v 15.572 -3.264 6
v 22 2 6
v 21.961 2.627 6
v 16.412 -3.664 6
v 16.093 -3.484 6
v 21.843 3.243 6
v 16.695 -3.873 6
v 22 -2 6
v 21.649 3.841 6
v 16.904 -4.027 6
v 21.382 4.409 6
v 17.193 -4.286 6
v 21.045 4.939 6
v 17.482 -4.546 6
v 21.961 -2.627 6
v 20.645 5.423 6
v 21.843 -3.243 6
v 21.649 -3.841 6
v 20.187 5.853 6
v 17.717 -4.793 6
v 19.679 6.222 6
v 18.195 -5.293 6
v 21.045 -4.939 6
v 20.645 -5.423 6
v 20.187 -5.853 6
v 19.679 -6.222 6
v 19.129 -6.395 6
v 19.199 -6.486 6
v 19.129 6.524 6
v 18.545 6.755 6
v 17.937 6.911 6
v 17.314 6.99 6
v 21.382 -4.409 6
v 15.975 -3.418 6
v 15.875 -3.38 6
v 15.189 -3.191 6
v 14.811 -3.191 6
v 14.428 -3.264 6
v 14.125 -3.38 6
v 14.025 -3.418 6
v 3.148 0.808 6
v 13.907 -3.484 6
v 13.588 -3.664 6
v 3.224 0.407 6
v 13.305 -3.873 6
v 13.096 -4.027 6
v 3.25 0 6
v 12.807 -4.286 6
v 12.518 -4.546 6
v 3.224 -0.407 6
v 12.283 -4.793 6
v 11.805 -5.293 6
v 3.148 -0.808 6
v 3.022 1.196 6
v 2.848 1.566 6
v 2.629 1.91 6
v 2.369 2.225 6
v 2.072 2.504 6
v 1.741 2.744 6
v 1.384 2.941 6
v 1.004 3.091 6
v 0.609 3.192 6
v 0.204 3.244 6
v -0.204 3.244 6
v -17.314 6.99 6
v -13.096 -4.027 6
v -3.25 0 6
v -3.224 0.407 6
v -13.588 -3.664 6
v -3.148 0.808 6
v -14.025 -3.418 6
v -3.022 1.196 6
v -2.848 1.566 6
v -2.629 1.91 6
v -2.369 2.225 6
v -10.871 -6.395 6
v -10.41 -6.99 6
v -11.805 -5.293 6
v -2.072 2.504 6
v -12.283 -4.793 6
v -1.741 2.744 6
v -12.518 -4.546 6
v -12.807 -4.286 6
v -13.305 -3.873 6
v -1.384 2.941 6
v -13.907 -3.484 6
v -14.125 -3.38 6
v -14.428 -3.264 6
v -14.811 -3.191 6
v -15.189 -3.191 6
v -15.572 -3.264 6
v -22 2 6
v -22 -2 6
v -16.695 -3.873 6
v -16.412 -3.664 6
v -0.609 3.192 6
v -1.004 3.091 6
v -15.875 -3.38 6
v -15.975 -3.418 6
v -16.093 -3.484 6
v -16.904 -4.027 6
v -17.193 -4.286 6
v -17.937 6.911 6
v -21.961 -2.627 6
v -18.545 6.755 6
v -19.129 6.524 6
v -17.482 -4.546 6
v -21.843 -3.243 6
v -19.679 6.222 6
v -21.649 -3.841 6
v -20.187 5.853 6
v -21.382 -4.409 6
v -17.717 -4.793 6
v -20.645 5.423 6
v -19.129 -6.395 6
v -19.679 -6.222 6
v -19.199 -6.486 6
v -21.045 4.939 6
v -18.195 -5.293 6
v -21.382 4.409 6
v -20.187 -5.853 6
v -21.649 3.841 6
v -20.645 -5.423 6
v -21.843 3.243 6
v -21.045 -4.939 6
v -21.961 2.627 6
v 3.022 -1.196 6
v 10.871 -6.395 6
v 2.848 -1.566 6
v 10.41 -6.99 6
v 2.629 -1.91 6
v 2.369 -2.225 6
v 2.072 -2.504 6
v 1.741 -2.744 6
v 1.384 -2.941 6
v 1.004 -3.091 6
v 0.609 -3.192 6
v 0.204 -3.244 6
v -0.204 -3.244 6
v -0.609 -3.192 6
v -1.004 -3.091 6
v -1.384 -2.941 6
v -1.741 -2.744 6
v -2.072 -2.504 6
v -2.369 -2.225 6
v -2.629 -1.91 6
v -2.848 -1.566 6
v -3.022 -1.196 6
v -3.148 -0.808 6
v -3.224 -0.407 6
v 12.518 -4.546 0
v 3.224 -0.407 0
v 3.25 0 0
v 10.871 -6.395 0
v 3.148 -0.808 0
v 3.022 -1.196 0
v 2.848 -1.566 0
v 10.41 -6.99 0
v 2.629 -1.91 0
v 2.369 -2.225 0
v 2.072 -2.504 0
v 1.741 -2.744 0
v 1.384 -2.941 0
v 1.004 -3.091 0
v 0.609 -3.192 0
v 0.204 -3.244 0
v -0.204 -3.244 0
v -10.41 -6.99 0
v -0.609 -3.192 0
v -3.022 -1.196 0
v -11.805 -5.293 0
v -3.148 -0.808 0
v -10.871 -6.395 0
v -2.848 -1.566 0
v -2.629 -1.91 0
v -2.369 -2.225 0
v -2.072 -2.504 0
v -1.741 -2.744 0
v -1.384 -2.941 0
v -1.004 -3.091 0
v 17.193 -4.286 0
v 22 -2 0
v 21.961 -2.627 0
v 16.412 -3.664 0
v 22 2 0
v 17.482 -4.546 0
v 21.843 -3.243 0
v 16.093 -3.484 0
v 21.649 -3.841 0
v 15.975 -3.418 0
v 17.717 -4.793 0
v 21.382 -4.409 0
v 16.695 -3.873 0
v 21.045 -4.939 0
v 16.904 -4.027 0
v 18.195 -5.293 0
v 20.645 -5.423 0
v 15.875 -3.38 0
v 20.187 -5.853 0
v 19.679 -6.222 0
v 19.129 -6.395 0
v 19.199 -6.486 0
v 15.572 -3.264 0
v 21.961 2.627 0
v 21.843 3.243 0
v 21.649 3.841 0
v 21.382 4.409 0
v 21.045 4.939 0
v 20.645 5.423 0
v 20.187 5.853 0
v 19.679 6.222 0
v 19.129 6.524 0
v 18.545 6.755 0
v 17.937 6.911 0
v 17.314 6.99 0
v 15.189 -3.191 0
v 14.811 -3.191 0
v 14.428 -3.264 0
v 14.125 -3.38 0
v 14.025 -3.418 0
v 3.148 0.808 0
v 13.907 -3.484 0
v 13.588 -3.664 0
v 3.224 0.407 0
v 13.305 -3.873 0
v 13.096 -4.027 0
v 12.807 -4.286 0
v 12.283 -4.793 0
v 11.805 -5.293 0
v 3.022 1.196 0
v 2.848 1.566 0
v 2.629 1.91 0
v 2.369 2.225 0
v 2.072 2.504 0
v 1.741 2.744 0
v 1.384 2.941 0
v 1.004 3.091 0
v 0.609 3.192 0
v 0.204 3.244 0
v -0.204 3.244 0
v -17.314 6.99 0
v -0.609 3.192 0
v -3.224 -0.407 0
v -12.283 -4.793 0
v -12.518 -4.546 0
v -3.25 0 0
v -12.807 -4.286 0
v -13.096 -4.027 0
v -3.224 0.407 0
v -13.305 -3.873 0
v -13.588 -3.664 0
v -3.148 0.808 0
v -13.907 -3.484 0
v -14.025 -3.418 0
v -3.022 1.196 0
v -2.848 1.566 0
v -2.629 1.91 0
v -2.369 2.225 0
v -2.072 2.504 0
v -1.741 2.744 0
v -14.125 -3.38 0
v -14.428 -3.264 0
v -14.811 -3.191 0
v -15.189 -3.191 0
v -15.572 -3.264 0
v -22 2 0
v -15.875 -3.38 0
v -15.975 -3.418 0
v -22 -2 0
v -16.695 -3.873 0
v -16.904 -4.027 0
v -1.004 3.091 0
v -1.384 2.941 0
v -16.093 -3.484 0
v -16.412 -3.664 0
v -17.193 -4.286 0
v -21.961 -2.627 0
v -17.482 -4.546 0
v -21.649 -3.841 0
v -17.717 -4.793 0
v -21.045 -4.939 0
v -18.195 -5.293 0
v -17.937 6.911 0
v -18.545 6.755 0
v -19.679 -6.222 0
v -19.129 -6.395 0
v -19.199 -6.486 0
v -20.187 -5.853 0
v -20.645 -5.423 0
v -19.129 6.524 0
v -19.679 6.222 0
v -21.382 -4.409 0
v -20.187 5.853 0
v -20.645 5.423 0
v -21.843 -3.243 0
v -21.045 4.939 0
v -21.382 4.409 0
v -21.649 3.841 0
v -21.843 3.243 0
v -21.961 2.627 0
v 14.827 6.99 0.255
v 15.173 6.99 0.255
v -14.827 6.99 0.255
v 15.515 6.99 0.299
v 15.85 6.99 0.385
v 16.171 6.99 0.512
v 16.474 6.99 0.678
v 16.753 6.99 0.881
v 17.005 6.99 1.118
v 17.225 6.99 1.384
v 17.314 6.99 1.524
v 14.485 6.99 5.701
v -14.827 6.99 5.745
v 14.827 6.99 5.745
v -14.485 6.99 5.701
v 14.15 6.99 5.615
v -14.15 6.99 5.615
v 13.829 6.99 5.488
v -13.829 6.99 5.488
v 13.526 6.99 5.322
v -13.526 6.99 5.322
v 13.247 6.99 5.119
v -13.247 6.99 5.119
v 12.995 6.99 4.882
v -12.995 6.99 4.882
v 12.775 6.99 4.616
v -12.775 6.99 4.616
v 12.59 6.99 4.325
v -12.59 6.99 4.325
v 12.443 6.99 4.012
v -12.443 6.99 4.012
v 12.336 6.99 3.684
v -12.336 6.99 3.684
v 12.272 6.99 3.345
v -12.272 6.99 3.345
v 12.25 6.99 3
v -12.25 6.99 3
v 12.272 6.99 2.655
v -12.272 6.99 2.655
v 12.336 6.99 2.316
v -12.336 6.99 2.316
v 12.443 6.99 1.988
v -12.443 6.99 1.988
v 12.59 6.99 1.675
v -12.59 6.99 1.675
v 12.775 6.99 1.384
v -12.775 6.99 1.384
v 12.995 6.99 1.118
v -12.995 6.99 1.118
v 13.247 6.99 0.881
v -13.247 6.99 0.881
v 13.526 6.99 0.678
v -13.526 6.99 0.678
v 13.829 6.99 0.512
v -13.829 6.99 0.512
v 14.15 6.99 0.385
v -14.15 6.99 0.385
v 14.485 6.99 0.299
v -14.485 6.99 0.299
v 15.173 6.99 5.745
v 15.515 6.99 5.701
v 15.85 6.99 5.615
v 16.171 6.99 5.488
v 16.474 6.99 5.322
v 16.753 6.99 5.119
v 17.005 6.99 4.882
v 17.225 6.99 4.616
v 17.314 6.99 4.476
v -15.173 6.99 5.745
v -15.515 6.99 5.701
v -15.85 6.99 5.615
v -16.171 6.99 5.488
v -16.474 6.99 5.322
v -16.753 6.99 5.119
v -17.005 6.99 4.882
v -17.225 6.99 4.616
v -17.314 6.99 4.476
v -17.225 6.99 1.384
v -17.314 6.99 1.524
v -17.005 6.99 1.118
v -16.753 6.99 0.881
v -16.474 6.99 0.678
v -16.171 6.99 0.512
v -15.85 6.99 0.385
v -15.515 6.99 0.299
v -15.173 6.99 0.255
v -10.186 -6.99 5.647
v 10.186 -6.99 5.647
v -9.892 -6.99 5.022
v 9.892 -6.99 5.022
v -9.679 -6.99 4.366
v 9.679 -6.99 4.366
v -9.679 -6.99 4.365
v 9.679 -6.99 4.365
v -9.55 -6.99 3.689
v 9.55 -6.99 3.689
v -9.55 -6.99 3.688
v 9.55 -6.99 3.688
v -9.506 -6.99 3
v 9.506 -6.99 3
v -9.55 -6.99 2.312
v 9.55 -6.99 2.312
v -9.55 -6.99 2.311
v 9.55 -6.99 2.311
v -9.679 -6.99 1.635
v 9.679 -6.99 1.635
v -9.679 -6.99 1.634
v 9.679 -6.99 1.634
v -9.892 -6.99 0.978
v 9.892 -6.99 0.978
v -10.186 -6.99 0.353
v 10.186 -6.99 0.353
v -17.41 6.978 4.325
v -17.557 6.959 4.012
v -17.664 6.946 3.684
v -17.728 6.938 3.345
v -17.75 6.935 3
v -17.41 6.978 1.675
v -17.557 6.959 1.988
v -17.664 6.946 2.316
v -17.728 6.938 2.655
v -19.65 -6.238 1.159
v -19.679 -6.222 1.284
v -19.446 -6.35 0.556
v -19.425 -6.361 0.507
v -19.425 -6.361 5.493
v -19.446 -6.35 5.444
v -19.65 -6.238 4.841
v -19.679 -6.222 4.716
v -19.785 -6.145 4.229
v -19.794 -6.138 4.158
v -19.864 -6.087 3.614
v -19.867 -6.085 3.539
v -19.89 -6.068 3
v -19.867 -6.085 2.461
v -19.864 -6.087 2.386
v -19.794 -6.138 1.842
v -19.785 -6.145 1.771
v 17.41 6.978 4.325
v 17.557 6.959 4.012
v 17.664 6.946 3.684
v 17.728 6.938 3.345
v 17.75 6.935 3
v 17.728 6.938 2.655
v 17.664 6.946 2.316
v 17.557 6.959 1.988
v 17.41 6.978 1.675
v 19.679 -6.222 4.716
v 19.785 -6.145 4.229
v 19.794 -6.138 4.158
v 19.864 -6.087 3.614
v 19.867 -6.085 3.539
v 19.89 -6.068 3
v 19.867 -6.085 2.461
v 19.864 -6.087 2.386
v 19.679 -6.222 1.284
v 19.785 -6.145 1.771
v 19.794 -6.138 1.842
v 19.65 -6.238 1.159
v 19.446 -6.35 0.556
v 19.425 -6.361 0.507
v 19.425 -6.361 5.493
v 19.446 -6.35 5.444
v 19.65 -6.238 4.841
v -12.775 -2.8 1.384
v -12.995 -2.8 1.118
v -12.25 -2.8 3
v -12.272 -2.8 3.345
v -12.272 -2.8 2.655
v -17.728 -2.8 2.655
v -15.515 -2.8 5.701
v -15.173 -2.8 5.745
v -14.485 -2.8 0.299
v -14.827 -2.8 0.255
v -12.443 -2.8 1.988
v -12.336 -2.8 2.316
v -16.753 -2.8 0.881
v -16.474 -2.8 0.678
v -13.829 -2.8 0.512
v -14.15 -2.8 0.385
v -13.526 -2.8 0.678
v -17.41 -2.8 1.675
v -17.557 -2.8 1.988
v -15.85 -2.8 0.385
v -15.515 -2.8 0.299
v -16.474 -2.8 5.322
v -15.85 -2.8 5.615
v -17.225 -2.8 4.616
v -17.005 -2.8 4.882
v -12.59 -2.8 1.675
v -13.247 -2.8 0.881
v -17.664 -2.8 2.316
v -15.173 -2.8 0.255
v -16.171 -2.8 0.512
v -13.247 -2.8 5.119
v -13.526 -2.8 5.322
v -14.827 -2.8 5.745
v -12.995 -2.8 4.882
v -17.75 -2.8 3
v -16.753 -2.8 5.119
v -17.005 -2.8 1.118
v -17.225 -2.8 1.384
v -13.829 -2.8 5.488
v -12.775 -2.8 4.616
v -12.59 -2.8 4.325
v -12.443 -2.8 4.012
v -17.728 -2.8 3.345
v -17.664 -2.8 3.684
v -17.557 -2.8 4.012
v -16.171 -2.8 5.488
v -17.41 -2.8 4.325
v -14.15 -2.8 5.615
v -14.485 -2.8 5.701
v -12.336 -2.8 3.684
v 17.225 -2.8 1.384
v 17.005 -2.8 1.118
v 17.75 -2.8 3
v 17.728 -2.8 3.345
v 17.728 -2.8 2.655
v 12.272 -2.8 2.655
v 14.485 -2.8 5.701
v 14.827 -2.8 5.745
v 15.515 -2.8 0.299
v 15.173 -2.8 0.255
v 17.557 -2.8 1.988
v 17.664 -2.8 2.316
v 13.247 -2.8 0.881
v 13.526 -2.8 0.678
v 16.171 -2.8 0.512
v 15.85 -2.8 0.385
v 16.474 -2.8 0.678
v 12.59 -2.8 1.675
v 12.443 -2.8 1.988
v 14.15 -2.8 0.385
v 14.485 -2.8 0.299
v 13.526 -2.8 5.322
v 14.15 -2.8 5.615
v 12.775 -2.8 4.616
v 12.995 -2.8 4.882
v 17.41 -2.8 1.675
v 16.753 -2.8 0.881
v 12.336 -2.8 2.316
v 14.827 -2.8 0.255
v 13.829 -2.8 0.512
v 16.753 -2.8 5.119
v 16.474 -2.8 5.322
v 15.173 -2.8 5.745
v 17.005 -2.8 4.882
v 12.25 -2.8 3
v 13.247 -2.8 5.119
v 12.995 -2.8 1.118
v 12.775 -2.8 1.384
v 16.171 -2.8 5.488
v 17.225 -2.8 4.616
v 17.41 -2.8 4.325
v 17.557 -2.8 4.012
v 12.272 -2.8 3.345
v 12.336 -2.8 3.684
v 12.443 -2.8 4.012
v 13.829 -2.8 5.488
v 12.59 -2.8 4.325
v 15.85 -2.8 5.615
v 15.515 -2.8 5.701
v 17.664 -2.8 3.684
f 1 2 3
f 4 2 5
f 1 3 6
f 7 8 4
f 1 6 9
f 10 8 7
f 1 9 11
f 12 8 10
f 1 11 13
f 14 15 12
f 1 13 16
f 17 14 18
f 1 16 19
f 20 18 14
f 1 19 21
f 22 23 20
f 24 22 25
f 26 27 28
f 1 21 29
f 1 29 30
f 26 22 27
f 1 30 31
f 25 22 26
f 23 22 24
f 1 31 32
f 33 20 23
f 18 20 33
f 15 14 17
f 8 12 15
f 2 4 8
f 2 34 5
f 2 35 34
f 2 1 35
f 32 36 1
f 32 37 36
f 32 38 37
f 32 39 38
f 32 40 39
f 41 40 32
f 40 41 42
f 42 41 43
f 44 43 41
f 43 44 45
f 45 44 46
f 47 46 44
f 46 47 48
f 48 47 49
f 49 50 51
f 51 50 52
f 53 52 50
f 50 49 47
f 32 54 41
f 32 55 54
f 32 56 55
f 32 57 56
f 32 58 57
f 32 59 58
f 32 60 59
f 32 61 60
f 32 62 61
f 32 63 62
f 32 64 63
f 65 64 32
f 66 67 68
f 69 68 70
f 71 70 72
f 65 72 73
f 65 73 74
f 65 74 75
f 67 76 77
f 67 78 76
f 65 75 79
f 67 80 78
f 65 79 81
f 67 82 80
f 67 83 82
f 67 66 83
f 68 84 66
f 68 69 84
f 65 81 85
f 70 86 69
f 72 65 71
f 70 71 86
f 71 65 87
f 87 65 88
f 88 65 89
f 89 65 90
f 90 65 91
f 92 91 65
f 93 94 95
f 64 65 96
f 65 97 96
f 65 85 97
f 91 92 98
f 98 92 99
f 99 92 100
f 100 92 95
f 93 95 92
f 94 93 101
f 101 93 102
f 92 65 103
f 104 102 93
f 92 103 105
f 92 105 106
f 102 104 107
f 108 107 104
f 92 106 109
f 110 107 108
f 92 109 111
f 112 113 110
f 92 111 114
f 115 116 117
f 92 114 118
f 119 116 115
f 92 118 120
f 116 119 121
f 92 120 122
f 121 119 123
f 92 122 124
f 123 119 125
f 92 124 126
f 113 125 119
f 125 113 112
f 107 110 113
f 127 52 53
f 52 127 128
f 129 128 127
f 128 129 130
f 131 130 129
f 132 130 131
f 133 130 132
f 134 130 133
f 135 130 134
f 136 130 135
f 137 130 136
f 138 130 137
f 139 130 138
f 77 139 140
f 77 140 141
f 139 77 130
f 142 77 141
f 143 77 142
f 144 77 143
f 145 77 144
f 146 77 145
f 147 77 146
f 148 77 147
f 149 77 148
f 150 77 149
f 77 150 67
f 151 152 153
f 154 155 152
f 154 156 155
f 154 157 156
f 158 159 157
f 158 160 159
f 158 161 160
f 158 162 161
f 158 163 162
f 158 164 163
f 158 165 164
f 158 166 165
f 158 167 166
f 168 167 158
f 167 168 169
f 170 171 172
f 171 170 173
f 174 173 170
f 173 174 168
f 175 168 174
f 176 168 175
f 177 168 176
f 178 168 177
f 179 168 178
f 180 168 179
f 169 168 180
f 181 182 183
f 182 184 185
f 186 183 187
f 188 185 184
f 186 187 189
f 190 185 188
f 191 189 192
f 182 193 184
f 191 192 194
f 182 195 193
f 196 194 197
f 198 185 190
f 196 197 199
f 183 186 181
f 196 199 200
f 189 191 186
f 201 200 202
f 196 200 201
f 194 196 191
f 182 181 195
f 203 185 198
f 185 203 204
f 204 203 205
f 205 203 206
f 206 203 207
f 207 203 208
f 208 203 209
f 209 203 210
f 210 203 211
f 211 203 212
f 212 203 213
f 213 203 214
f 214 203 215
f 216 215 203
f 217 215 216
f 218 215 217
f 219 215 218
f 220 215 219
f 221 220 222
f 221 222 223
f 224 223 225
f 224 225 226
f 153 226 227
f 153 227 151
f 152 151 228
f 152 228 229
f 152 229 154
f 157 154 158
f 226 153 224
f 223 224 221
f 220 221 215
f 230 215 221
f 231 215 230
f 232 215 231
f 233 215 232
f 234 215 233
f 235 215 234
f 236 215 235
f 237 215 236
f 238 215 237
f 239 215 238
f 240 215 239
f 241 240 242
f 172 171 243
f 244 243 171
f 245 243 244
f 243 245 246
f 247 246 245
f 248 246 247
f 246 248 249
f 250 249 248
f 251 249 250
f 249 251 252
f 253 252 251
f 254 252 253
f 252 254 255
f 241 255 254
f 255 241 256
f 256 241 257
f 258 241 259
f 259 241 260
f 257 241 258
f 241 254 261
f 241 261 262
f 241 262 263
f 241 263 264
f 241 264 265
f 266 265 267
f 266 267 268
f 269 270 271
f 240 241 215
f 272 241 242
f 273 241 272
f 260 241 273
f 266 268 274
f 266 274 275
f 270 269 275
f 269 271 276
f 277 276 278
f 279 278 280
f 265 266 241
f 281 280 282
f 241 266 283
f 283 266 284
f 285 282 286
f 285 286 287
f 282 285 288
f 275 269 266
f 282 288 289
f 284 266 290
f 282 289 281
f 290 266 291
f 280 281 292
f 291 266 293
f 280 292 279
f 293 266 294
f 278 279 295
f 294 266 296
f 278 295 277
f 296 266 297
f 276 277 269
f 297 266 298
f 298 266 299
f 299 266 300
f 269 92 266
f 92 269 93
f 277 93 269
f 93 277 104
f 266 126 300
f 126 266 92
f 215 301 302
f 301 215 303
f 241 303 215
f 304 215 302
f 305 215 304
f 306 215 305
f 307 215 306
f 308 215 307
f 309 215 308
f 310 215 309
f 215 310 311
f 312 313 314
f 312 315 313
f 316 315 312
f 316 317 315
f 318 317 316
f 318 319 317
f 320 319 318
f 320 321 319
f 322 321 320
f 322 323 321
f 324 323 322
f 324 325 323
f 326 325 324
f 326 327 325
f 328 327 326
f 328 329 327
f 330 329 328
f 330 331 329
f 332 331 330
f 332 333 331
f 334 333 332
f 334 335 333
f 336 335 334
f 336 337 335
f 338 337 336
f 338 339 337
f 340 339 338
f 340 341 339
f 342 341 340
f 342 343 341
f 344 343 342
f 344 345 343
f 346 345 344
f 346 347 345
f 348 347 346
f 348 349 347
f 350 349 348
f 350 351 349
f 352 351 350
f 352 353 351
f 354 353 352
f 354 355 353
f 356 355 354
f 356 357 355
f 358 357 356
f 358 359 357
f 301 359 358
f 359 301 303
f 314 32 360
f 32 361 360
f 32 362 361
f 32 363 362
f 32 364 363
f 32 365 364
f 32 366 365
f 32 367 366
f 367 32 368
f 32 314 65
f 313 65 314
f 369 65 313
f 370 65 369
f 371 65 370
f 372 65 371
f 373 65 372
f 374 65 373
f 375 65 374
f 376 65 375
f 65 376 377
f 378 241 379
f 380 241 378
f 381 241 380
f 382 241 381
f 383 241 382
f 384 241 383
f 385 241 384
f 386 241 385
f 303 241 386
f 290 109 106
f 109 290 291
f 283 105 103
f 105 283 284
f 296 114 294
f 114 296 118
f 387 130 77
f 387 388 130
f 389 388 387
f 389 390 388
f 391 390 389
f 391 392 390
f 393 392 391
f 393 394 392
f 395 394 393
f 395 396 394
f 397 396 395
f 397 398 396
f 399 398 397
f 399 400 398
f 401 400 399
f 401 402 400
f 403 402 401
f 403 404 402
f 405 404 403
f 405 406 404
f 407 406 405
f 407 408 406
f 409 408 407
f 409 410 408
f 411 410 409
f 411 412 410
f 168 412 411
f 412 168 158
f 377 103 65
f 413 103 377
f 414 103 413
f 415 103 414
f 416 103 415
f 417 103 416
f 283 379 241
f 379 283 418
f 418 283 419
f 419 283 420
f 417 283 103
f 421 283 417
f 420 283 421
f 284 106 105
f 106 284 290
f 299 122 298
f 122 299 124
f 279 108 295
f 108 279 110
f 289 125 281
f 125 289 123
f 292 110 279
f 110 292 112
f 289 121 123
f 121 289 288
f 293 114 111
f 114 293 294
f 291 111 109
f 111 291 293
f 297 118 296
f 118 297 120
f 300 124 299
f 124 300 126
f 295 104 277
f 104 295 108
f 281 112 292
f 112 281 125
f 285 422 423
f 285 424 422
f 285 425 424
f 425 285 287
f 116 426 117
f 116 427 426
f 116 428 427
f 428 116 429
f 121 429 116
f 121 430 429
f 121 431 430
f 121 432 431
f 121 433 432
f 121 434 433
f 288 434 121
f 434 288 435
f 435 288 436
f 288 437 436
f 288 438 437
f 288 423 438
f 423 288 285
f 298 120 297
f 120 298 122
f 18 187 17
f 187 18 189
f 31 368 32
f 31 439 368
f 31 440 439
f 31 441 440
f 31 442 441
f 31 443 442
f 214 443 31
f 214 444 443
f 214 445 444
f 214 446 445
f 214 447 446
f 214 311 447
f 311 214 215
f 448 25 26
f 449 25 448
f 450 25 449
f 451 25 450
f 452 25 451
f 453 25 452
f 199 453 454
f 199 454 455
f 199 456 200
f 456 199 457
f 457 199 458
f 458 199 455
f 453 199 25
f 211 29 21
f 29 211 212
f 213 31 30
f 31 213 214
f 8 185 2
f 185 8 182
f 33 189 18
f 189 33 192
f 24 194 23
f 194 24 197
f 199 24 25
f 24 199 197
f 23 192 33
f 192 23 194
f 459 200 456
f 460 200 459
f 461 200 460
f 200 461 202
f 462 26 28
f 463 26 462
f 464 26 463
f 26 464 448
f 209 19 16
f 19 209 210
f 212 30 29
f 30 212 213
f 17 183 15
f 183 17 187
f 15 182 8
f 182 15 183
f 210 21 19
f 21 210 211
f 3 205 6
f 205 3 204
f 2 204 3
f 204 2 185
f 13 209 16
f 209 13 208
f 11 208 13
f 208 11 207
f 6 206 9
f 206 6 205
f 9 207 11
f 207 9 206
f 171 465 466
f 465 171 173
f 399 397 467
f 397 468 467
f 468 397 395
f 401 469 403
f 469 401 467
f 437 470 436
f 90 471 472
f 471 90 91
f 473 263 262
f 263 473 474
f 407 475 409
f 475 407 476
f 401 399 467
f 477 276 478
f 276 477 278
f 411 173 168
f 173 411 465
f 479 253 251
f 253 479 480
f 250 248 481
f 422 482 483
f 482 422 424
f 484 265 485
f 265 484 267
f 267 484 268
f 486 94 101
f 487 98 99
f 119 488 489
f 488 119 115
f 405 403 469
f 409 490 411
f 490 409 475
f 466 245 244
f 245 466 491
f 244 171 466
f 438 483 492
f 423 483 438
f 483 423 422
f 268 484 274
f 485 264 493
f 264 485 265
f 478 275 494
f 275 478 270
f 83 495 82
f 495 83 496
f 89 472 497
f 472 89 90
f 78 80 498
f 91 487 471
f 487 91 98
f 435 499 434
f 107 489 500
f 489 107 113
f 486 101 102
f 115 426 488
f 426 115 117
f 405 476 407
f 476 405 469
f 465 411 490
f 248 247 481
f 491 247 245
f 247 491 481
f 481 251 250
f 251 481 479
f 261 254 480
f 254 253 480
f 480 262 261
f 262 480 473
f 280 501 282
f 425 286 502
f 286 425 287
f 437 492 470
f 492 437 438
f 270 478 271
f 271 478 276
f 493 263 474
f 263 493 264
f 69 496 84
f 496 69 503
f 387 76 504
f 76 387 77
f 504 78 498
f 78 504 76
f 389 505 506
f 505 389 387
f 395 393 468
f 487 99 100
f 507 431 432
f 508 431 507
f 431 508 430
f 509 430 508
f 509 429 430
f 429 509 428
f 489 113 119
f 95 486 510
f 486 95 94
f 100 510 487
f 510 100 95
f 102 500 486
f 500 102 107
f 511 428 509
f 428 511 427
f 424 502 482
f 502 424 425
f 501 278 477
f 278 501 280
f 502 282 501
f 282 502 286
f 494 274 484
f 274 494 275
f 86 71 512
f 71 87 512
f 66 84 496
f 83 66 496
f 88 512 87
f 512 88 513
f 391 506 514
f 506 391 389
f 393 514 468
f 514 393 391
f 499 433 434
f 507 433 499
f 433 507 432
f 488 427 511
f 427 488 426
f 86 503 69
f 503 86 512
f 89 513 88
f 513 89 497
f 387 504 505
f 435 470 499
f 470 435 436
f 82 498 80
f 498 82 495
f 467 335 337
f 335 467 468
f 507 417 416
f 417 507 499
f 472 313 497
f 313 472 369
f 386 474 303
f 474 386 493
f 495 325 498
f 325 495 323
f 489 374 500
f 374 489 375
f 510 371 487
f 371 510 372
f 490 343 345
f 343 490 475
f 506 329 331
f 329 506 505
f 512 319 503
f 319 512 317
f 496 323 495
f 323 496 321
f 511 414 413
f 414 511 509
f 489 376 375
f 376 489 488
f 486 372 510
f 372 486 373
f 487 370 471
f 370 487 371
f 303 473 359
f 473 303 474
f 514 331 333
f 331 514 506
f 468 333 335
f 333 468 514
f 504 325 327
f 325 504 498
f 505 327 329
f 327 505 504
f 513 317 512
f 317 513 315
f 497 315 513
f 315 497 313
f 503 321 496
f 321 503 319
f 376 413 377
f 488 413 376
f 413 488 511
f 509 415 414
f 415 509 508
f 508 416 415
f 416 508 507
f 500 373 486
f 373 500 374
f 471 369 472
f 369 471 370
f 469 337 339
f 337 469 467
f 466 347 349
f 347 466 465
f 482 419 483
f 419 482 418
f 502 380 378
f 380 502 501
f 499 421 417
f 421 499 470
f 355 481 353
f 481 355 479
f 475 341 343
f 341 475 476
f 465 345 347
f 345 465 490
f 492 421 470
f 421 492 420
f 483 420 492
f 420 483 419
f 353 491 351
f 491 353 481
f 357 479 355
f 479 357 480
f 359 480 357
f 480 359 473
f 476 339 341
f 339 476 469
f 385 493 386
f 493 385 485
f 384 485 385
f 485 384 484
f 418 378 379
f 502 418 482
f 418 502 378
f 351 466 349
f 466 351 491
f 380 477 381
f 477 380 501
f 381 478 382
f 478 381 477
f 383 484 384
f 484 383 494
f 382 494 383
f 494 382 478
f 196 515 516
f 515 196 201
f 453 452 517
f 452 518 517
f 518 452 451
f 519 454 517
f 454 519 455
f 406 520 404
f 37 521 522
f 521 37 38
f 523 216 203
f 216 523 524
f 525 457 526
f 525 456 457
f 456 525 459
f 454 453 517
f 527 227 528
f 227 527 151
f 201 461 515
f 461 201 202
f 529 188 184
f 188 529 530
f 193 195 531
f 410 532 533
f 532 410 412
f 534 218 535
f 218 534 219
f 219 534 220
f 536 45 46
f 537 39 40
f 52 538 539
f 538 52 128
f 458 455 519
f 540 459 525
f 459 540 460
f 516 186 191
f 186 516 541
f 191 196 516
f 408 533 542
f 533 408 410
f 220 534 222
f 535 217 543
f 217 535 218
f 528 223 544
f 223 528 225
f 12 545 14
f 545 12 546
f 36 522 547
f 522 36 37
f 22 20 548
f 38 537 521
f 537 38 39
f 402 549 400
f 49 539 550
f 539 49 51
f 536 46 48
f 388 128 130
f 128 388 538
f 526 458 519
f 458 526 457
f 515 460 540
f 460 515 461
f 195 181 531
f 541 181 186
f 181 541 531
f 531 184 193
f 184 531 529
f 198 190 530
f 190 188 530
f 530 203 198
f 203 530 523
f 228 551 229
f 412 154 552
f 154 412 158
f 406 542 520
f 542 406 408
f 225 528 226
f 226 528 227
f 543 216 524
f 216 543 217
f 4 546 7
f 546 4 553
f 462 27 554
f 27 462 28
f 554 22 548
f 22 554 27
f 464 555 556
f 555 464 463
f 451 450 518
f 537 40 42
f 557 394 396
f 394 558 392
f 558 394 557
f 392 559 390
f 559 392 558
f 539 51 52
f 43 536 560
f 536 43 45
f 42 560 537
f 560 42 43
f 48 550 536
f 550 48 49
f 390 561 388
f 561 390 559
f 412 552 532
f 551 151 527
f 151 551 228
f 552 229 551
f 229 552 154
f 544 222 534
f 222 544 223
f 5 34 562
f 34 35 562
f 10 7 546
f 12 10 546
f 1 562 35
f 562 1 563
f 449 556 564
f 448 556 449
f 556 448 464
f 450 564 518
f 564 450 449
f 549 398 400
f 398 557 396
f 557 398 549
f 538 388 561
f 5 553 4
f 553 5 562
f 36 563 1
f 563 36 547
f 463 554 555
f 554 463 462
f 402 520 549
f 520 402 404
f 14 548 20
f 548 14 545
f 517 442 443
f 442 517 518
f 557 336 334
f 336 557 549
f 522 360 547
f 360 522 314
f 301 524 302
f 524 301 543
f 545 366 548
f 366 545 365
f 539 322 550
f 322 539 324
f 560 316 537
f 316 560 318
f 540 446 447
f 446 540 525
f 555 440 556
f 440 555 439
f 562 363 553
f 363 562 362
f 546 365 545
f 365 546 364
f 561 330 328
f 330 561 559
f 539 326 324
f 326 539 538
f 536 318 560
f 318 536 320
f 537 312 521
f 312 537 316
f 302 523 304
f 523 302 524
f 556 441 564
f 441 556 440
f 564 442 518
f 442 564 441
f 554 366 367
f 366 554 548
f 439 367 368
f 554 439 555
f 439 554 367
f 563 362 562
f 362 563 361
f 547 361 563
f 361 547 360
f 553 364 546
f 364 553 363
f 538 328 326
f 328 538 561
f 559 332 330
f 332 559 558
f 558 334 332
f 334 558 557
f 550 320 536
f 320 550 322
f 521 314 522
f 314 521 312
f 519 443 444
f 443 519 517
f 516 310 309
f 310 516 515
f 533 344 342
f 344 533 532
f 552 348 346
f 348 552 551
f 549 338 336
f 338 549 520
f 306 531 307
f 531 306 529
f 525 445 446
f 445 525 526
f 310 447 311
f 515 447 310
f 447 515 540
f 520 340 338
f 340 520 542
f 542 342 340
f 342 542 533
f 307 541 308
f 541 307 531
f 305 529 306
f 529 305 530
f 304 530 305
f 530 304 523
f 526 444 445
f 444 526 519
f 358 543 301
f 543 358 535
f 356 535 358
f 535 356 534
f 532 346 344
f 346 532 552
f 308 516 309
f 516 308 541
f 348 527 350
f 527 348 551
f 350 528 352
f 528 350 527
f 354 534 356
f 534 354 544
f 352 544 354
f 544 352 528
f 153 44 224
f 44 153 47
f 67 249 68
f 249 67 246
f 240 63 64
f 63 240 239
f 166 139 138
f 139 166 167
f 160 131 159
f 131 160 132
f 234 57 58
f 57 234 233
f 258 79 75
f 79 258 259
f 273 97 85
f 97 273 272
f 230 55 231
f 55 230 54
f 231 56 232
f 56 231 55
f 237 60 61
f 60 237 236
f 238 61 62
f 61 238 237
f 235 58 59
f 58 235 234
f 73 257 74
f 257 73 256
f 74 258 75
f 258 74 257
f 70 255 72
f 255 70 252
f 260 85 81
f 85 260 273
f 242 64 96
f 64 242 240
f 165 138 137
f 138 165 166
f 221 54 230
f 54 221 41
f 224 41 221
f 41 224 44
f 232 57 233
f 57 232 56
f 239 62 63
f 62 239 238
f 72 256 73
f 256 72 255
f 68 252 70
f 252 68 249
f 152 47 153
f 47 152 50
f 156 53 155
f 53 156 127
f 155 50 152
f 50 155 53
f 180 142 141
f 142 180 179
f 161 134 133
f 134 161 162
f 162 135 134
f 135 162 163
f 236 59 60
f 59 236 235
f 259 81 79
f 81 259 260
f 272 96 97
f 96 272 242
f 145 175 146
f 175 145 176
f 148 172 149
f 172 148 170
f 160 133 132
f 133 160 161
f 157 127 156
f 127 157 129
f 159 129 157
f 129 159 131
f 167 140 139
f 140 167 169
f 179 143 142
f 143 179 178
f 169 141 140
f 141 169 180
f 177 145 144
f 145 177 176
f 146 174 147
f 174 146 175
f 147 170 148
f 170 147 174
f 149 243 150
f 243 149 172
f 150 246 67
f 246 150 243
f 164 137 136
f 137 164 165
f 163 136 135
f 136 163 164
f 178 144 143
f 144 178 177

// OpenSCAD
$fn = 50;


difference() {
	union() {
		cylinder(h = 6, r = 7.0000000000);
		translate(v = [-7.5000000000, 0.0000000000, 0]) {
			hull() {
				translate(v = [-9.5000000000, 2.0000000000, 0]) {
					cylinder(h = 6, r = 5);
				}
				translate(v = [9.5000000000, 2.0000000000, 0]) {
					cylinder(h = 6, r = 5);
				}
				translate(v = [-9.5000000000, -2.0000000000, 0]) {
					cylinder(h = 6, r = 5);
				}
				translate(v = [9.5000000000, -2.0000000000, 0]) {
					cylinder(h = 6, r = 5);
				}
			}
		}
		translate(v = [7.5000000000, 0.0000000000, 0]) {
			hull() {
				translate(v = [-9.5000000000, 2.0000000000, 0]) {
					cylinder(h = 6, r = 5);
				}
				translate(v = [9.5000000000, 2.0000000000, 0]) {
					cylinder(h = 6, r = 5);
				}
				translate(v = [-9.5000000000, -2.0000000000, 0]) {
					cylinder(h = 6, r = 5);
				}
				translate(v = [9.5000000000, -2.0000000000, 0]) {
					cylinder(h = 6, r = 5);
				}
			}
		}
	}
	union() {
		translate(v = [-15.0000000000, -7.0000000000, 3.0000000000]) {
			rotate(a = [90, 0, 0]) {
				difference() {
					union() {
						#translate(v = [0, 0, -14.0000000000]) {
							cylinder(h = 14, r = 2.2500000000);
						}
						#translate(v = [0, 0, -4.2000000000]) {
							cylinder(h = 4.2000000000, r1 = 2.7500000000, r2 = 5.5000000000);
						}
						#translate(v = [0, 0, -14.0000000000]) {
							cylinder(h = 14, r = 2.7500000000);
						}
						#translate(v = [0, 0, -14.0000000000]) {
							cylinder(h = 14, r = 2.2500000000);
						}
					}
					union();
				}
			}
		}
		translate(v = [15.0000000000, -7.0000000000, 3.0000000000]) {
			rotate(a = [90, 0, 0]) {
				difference() {
					union() {
						#translate(v = [0, 0, -14.0000000000]) {
							cylinder(h = 14, r = 2.2500000000);
						}
						#translate(v = [0, 0, -4.2000000000]) {
							cylinder(h = 4.2000000000, r1 = 2.7500000000, r2 = 5.5000000000);
						}
						#translate(v = [0, 0, -14.0000000000]) {
							cylinder(h = 14, r = 2.7500000000);
						}
						#translate(v = [0, 0, -14.0000000000]) {
							cylinder(h = 14, r = 2.2500000000);
						}
					}
					union();
				}
			}
		}
		translate(v = [0, 0, -100]) {
			cylinder(h = 200, r = 3.2500000000);
		}
		translate(v = [0, 0, -100]) {
			cylinder(h = 200, r = 1.8000000000);
		}
	}
}
